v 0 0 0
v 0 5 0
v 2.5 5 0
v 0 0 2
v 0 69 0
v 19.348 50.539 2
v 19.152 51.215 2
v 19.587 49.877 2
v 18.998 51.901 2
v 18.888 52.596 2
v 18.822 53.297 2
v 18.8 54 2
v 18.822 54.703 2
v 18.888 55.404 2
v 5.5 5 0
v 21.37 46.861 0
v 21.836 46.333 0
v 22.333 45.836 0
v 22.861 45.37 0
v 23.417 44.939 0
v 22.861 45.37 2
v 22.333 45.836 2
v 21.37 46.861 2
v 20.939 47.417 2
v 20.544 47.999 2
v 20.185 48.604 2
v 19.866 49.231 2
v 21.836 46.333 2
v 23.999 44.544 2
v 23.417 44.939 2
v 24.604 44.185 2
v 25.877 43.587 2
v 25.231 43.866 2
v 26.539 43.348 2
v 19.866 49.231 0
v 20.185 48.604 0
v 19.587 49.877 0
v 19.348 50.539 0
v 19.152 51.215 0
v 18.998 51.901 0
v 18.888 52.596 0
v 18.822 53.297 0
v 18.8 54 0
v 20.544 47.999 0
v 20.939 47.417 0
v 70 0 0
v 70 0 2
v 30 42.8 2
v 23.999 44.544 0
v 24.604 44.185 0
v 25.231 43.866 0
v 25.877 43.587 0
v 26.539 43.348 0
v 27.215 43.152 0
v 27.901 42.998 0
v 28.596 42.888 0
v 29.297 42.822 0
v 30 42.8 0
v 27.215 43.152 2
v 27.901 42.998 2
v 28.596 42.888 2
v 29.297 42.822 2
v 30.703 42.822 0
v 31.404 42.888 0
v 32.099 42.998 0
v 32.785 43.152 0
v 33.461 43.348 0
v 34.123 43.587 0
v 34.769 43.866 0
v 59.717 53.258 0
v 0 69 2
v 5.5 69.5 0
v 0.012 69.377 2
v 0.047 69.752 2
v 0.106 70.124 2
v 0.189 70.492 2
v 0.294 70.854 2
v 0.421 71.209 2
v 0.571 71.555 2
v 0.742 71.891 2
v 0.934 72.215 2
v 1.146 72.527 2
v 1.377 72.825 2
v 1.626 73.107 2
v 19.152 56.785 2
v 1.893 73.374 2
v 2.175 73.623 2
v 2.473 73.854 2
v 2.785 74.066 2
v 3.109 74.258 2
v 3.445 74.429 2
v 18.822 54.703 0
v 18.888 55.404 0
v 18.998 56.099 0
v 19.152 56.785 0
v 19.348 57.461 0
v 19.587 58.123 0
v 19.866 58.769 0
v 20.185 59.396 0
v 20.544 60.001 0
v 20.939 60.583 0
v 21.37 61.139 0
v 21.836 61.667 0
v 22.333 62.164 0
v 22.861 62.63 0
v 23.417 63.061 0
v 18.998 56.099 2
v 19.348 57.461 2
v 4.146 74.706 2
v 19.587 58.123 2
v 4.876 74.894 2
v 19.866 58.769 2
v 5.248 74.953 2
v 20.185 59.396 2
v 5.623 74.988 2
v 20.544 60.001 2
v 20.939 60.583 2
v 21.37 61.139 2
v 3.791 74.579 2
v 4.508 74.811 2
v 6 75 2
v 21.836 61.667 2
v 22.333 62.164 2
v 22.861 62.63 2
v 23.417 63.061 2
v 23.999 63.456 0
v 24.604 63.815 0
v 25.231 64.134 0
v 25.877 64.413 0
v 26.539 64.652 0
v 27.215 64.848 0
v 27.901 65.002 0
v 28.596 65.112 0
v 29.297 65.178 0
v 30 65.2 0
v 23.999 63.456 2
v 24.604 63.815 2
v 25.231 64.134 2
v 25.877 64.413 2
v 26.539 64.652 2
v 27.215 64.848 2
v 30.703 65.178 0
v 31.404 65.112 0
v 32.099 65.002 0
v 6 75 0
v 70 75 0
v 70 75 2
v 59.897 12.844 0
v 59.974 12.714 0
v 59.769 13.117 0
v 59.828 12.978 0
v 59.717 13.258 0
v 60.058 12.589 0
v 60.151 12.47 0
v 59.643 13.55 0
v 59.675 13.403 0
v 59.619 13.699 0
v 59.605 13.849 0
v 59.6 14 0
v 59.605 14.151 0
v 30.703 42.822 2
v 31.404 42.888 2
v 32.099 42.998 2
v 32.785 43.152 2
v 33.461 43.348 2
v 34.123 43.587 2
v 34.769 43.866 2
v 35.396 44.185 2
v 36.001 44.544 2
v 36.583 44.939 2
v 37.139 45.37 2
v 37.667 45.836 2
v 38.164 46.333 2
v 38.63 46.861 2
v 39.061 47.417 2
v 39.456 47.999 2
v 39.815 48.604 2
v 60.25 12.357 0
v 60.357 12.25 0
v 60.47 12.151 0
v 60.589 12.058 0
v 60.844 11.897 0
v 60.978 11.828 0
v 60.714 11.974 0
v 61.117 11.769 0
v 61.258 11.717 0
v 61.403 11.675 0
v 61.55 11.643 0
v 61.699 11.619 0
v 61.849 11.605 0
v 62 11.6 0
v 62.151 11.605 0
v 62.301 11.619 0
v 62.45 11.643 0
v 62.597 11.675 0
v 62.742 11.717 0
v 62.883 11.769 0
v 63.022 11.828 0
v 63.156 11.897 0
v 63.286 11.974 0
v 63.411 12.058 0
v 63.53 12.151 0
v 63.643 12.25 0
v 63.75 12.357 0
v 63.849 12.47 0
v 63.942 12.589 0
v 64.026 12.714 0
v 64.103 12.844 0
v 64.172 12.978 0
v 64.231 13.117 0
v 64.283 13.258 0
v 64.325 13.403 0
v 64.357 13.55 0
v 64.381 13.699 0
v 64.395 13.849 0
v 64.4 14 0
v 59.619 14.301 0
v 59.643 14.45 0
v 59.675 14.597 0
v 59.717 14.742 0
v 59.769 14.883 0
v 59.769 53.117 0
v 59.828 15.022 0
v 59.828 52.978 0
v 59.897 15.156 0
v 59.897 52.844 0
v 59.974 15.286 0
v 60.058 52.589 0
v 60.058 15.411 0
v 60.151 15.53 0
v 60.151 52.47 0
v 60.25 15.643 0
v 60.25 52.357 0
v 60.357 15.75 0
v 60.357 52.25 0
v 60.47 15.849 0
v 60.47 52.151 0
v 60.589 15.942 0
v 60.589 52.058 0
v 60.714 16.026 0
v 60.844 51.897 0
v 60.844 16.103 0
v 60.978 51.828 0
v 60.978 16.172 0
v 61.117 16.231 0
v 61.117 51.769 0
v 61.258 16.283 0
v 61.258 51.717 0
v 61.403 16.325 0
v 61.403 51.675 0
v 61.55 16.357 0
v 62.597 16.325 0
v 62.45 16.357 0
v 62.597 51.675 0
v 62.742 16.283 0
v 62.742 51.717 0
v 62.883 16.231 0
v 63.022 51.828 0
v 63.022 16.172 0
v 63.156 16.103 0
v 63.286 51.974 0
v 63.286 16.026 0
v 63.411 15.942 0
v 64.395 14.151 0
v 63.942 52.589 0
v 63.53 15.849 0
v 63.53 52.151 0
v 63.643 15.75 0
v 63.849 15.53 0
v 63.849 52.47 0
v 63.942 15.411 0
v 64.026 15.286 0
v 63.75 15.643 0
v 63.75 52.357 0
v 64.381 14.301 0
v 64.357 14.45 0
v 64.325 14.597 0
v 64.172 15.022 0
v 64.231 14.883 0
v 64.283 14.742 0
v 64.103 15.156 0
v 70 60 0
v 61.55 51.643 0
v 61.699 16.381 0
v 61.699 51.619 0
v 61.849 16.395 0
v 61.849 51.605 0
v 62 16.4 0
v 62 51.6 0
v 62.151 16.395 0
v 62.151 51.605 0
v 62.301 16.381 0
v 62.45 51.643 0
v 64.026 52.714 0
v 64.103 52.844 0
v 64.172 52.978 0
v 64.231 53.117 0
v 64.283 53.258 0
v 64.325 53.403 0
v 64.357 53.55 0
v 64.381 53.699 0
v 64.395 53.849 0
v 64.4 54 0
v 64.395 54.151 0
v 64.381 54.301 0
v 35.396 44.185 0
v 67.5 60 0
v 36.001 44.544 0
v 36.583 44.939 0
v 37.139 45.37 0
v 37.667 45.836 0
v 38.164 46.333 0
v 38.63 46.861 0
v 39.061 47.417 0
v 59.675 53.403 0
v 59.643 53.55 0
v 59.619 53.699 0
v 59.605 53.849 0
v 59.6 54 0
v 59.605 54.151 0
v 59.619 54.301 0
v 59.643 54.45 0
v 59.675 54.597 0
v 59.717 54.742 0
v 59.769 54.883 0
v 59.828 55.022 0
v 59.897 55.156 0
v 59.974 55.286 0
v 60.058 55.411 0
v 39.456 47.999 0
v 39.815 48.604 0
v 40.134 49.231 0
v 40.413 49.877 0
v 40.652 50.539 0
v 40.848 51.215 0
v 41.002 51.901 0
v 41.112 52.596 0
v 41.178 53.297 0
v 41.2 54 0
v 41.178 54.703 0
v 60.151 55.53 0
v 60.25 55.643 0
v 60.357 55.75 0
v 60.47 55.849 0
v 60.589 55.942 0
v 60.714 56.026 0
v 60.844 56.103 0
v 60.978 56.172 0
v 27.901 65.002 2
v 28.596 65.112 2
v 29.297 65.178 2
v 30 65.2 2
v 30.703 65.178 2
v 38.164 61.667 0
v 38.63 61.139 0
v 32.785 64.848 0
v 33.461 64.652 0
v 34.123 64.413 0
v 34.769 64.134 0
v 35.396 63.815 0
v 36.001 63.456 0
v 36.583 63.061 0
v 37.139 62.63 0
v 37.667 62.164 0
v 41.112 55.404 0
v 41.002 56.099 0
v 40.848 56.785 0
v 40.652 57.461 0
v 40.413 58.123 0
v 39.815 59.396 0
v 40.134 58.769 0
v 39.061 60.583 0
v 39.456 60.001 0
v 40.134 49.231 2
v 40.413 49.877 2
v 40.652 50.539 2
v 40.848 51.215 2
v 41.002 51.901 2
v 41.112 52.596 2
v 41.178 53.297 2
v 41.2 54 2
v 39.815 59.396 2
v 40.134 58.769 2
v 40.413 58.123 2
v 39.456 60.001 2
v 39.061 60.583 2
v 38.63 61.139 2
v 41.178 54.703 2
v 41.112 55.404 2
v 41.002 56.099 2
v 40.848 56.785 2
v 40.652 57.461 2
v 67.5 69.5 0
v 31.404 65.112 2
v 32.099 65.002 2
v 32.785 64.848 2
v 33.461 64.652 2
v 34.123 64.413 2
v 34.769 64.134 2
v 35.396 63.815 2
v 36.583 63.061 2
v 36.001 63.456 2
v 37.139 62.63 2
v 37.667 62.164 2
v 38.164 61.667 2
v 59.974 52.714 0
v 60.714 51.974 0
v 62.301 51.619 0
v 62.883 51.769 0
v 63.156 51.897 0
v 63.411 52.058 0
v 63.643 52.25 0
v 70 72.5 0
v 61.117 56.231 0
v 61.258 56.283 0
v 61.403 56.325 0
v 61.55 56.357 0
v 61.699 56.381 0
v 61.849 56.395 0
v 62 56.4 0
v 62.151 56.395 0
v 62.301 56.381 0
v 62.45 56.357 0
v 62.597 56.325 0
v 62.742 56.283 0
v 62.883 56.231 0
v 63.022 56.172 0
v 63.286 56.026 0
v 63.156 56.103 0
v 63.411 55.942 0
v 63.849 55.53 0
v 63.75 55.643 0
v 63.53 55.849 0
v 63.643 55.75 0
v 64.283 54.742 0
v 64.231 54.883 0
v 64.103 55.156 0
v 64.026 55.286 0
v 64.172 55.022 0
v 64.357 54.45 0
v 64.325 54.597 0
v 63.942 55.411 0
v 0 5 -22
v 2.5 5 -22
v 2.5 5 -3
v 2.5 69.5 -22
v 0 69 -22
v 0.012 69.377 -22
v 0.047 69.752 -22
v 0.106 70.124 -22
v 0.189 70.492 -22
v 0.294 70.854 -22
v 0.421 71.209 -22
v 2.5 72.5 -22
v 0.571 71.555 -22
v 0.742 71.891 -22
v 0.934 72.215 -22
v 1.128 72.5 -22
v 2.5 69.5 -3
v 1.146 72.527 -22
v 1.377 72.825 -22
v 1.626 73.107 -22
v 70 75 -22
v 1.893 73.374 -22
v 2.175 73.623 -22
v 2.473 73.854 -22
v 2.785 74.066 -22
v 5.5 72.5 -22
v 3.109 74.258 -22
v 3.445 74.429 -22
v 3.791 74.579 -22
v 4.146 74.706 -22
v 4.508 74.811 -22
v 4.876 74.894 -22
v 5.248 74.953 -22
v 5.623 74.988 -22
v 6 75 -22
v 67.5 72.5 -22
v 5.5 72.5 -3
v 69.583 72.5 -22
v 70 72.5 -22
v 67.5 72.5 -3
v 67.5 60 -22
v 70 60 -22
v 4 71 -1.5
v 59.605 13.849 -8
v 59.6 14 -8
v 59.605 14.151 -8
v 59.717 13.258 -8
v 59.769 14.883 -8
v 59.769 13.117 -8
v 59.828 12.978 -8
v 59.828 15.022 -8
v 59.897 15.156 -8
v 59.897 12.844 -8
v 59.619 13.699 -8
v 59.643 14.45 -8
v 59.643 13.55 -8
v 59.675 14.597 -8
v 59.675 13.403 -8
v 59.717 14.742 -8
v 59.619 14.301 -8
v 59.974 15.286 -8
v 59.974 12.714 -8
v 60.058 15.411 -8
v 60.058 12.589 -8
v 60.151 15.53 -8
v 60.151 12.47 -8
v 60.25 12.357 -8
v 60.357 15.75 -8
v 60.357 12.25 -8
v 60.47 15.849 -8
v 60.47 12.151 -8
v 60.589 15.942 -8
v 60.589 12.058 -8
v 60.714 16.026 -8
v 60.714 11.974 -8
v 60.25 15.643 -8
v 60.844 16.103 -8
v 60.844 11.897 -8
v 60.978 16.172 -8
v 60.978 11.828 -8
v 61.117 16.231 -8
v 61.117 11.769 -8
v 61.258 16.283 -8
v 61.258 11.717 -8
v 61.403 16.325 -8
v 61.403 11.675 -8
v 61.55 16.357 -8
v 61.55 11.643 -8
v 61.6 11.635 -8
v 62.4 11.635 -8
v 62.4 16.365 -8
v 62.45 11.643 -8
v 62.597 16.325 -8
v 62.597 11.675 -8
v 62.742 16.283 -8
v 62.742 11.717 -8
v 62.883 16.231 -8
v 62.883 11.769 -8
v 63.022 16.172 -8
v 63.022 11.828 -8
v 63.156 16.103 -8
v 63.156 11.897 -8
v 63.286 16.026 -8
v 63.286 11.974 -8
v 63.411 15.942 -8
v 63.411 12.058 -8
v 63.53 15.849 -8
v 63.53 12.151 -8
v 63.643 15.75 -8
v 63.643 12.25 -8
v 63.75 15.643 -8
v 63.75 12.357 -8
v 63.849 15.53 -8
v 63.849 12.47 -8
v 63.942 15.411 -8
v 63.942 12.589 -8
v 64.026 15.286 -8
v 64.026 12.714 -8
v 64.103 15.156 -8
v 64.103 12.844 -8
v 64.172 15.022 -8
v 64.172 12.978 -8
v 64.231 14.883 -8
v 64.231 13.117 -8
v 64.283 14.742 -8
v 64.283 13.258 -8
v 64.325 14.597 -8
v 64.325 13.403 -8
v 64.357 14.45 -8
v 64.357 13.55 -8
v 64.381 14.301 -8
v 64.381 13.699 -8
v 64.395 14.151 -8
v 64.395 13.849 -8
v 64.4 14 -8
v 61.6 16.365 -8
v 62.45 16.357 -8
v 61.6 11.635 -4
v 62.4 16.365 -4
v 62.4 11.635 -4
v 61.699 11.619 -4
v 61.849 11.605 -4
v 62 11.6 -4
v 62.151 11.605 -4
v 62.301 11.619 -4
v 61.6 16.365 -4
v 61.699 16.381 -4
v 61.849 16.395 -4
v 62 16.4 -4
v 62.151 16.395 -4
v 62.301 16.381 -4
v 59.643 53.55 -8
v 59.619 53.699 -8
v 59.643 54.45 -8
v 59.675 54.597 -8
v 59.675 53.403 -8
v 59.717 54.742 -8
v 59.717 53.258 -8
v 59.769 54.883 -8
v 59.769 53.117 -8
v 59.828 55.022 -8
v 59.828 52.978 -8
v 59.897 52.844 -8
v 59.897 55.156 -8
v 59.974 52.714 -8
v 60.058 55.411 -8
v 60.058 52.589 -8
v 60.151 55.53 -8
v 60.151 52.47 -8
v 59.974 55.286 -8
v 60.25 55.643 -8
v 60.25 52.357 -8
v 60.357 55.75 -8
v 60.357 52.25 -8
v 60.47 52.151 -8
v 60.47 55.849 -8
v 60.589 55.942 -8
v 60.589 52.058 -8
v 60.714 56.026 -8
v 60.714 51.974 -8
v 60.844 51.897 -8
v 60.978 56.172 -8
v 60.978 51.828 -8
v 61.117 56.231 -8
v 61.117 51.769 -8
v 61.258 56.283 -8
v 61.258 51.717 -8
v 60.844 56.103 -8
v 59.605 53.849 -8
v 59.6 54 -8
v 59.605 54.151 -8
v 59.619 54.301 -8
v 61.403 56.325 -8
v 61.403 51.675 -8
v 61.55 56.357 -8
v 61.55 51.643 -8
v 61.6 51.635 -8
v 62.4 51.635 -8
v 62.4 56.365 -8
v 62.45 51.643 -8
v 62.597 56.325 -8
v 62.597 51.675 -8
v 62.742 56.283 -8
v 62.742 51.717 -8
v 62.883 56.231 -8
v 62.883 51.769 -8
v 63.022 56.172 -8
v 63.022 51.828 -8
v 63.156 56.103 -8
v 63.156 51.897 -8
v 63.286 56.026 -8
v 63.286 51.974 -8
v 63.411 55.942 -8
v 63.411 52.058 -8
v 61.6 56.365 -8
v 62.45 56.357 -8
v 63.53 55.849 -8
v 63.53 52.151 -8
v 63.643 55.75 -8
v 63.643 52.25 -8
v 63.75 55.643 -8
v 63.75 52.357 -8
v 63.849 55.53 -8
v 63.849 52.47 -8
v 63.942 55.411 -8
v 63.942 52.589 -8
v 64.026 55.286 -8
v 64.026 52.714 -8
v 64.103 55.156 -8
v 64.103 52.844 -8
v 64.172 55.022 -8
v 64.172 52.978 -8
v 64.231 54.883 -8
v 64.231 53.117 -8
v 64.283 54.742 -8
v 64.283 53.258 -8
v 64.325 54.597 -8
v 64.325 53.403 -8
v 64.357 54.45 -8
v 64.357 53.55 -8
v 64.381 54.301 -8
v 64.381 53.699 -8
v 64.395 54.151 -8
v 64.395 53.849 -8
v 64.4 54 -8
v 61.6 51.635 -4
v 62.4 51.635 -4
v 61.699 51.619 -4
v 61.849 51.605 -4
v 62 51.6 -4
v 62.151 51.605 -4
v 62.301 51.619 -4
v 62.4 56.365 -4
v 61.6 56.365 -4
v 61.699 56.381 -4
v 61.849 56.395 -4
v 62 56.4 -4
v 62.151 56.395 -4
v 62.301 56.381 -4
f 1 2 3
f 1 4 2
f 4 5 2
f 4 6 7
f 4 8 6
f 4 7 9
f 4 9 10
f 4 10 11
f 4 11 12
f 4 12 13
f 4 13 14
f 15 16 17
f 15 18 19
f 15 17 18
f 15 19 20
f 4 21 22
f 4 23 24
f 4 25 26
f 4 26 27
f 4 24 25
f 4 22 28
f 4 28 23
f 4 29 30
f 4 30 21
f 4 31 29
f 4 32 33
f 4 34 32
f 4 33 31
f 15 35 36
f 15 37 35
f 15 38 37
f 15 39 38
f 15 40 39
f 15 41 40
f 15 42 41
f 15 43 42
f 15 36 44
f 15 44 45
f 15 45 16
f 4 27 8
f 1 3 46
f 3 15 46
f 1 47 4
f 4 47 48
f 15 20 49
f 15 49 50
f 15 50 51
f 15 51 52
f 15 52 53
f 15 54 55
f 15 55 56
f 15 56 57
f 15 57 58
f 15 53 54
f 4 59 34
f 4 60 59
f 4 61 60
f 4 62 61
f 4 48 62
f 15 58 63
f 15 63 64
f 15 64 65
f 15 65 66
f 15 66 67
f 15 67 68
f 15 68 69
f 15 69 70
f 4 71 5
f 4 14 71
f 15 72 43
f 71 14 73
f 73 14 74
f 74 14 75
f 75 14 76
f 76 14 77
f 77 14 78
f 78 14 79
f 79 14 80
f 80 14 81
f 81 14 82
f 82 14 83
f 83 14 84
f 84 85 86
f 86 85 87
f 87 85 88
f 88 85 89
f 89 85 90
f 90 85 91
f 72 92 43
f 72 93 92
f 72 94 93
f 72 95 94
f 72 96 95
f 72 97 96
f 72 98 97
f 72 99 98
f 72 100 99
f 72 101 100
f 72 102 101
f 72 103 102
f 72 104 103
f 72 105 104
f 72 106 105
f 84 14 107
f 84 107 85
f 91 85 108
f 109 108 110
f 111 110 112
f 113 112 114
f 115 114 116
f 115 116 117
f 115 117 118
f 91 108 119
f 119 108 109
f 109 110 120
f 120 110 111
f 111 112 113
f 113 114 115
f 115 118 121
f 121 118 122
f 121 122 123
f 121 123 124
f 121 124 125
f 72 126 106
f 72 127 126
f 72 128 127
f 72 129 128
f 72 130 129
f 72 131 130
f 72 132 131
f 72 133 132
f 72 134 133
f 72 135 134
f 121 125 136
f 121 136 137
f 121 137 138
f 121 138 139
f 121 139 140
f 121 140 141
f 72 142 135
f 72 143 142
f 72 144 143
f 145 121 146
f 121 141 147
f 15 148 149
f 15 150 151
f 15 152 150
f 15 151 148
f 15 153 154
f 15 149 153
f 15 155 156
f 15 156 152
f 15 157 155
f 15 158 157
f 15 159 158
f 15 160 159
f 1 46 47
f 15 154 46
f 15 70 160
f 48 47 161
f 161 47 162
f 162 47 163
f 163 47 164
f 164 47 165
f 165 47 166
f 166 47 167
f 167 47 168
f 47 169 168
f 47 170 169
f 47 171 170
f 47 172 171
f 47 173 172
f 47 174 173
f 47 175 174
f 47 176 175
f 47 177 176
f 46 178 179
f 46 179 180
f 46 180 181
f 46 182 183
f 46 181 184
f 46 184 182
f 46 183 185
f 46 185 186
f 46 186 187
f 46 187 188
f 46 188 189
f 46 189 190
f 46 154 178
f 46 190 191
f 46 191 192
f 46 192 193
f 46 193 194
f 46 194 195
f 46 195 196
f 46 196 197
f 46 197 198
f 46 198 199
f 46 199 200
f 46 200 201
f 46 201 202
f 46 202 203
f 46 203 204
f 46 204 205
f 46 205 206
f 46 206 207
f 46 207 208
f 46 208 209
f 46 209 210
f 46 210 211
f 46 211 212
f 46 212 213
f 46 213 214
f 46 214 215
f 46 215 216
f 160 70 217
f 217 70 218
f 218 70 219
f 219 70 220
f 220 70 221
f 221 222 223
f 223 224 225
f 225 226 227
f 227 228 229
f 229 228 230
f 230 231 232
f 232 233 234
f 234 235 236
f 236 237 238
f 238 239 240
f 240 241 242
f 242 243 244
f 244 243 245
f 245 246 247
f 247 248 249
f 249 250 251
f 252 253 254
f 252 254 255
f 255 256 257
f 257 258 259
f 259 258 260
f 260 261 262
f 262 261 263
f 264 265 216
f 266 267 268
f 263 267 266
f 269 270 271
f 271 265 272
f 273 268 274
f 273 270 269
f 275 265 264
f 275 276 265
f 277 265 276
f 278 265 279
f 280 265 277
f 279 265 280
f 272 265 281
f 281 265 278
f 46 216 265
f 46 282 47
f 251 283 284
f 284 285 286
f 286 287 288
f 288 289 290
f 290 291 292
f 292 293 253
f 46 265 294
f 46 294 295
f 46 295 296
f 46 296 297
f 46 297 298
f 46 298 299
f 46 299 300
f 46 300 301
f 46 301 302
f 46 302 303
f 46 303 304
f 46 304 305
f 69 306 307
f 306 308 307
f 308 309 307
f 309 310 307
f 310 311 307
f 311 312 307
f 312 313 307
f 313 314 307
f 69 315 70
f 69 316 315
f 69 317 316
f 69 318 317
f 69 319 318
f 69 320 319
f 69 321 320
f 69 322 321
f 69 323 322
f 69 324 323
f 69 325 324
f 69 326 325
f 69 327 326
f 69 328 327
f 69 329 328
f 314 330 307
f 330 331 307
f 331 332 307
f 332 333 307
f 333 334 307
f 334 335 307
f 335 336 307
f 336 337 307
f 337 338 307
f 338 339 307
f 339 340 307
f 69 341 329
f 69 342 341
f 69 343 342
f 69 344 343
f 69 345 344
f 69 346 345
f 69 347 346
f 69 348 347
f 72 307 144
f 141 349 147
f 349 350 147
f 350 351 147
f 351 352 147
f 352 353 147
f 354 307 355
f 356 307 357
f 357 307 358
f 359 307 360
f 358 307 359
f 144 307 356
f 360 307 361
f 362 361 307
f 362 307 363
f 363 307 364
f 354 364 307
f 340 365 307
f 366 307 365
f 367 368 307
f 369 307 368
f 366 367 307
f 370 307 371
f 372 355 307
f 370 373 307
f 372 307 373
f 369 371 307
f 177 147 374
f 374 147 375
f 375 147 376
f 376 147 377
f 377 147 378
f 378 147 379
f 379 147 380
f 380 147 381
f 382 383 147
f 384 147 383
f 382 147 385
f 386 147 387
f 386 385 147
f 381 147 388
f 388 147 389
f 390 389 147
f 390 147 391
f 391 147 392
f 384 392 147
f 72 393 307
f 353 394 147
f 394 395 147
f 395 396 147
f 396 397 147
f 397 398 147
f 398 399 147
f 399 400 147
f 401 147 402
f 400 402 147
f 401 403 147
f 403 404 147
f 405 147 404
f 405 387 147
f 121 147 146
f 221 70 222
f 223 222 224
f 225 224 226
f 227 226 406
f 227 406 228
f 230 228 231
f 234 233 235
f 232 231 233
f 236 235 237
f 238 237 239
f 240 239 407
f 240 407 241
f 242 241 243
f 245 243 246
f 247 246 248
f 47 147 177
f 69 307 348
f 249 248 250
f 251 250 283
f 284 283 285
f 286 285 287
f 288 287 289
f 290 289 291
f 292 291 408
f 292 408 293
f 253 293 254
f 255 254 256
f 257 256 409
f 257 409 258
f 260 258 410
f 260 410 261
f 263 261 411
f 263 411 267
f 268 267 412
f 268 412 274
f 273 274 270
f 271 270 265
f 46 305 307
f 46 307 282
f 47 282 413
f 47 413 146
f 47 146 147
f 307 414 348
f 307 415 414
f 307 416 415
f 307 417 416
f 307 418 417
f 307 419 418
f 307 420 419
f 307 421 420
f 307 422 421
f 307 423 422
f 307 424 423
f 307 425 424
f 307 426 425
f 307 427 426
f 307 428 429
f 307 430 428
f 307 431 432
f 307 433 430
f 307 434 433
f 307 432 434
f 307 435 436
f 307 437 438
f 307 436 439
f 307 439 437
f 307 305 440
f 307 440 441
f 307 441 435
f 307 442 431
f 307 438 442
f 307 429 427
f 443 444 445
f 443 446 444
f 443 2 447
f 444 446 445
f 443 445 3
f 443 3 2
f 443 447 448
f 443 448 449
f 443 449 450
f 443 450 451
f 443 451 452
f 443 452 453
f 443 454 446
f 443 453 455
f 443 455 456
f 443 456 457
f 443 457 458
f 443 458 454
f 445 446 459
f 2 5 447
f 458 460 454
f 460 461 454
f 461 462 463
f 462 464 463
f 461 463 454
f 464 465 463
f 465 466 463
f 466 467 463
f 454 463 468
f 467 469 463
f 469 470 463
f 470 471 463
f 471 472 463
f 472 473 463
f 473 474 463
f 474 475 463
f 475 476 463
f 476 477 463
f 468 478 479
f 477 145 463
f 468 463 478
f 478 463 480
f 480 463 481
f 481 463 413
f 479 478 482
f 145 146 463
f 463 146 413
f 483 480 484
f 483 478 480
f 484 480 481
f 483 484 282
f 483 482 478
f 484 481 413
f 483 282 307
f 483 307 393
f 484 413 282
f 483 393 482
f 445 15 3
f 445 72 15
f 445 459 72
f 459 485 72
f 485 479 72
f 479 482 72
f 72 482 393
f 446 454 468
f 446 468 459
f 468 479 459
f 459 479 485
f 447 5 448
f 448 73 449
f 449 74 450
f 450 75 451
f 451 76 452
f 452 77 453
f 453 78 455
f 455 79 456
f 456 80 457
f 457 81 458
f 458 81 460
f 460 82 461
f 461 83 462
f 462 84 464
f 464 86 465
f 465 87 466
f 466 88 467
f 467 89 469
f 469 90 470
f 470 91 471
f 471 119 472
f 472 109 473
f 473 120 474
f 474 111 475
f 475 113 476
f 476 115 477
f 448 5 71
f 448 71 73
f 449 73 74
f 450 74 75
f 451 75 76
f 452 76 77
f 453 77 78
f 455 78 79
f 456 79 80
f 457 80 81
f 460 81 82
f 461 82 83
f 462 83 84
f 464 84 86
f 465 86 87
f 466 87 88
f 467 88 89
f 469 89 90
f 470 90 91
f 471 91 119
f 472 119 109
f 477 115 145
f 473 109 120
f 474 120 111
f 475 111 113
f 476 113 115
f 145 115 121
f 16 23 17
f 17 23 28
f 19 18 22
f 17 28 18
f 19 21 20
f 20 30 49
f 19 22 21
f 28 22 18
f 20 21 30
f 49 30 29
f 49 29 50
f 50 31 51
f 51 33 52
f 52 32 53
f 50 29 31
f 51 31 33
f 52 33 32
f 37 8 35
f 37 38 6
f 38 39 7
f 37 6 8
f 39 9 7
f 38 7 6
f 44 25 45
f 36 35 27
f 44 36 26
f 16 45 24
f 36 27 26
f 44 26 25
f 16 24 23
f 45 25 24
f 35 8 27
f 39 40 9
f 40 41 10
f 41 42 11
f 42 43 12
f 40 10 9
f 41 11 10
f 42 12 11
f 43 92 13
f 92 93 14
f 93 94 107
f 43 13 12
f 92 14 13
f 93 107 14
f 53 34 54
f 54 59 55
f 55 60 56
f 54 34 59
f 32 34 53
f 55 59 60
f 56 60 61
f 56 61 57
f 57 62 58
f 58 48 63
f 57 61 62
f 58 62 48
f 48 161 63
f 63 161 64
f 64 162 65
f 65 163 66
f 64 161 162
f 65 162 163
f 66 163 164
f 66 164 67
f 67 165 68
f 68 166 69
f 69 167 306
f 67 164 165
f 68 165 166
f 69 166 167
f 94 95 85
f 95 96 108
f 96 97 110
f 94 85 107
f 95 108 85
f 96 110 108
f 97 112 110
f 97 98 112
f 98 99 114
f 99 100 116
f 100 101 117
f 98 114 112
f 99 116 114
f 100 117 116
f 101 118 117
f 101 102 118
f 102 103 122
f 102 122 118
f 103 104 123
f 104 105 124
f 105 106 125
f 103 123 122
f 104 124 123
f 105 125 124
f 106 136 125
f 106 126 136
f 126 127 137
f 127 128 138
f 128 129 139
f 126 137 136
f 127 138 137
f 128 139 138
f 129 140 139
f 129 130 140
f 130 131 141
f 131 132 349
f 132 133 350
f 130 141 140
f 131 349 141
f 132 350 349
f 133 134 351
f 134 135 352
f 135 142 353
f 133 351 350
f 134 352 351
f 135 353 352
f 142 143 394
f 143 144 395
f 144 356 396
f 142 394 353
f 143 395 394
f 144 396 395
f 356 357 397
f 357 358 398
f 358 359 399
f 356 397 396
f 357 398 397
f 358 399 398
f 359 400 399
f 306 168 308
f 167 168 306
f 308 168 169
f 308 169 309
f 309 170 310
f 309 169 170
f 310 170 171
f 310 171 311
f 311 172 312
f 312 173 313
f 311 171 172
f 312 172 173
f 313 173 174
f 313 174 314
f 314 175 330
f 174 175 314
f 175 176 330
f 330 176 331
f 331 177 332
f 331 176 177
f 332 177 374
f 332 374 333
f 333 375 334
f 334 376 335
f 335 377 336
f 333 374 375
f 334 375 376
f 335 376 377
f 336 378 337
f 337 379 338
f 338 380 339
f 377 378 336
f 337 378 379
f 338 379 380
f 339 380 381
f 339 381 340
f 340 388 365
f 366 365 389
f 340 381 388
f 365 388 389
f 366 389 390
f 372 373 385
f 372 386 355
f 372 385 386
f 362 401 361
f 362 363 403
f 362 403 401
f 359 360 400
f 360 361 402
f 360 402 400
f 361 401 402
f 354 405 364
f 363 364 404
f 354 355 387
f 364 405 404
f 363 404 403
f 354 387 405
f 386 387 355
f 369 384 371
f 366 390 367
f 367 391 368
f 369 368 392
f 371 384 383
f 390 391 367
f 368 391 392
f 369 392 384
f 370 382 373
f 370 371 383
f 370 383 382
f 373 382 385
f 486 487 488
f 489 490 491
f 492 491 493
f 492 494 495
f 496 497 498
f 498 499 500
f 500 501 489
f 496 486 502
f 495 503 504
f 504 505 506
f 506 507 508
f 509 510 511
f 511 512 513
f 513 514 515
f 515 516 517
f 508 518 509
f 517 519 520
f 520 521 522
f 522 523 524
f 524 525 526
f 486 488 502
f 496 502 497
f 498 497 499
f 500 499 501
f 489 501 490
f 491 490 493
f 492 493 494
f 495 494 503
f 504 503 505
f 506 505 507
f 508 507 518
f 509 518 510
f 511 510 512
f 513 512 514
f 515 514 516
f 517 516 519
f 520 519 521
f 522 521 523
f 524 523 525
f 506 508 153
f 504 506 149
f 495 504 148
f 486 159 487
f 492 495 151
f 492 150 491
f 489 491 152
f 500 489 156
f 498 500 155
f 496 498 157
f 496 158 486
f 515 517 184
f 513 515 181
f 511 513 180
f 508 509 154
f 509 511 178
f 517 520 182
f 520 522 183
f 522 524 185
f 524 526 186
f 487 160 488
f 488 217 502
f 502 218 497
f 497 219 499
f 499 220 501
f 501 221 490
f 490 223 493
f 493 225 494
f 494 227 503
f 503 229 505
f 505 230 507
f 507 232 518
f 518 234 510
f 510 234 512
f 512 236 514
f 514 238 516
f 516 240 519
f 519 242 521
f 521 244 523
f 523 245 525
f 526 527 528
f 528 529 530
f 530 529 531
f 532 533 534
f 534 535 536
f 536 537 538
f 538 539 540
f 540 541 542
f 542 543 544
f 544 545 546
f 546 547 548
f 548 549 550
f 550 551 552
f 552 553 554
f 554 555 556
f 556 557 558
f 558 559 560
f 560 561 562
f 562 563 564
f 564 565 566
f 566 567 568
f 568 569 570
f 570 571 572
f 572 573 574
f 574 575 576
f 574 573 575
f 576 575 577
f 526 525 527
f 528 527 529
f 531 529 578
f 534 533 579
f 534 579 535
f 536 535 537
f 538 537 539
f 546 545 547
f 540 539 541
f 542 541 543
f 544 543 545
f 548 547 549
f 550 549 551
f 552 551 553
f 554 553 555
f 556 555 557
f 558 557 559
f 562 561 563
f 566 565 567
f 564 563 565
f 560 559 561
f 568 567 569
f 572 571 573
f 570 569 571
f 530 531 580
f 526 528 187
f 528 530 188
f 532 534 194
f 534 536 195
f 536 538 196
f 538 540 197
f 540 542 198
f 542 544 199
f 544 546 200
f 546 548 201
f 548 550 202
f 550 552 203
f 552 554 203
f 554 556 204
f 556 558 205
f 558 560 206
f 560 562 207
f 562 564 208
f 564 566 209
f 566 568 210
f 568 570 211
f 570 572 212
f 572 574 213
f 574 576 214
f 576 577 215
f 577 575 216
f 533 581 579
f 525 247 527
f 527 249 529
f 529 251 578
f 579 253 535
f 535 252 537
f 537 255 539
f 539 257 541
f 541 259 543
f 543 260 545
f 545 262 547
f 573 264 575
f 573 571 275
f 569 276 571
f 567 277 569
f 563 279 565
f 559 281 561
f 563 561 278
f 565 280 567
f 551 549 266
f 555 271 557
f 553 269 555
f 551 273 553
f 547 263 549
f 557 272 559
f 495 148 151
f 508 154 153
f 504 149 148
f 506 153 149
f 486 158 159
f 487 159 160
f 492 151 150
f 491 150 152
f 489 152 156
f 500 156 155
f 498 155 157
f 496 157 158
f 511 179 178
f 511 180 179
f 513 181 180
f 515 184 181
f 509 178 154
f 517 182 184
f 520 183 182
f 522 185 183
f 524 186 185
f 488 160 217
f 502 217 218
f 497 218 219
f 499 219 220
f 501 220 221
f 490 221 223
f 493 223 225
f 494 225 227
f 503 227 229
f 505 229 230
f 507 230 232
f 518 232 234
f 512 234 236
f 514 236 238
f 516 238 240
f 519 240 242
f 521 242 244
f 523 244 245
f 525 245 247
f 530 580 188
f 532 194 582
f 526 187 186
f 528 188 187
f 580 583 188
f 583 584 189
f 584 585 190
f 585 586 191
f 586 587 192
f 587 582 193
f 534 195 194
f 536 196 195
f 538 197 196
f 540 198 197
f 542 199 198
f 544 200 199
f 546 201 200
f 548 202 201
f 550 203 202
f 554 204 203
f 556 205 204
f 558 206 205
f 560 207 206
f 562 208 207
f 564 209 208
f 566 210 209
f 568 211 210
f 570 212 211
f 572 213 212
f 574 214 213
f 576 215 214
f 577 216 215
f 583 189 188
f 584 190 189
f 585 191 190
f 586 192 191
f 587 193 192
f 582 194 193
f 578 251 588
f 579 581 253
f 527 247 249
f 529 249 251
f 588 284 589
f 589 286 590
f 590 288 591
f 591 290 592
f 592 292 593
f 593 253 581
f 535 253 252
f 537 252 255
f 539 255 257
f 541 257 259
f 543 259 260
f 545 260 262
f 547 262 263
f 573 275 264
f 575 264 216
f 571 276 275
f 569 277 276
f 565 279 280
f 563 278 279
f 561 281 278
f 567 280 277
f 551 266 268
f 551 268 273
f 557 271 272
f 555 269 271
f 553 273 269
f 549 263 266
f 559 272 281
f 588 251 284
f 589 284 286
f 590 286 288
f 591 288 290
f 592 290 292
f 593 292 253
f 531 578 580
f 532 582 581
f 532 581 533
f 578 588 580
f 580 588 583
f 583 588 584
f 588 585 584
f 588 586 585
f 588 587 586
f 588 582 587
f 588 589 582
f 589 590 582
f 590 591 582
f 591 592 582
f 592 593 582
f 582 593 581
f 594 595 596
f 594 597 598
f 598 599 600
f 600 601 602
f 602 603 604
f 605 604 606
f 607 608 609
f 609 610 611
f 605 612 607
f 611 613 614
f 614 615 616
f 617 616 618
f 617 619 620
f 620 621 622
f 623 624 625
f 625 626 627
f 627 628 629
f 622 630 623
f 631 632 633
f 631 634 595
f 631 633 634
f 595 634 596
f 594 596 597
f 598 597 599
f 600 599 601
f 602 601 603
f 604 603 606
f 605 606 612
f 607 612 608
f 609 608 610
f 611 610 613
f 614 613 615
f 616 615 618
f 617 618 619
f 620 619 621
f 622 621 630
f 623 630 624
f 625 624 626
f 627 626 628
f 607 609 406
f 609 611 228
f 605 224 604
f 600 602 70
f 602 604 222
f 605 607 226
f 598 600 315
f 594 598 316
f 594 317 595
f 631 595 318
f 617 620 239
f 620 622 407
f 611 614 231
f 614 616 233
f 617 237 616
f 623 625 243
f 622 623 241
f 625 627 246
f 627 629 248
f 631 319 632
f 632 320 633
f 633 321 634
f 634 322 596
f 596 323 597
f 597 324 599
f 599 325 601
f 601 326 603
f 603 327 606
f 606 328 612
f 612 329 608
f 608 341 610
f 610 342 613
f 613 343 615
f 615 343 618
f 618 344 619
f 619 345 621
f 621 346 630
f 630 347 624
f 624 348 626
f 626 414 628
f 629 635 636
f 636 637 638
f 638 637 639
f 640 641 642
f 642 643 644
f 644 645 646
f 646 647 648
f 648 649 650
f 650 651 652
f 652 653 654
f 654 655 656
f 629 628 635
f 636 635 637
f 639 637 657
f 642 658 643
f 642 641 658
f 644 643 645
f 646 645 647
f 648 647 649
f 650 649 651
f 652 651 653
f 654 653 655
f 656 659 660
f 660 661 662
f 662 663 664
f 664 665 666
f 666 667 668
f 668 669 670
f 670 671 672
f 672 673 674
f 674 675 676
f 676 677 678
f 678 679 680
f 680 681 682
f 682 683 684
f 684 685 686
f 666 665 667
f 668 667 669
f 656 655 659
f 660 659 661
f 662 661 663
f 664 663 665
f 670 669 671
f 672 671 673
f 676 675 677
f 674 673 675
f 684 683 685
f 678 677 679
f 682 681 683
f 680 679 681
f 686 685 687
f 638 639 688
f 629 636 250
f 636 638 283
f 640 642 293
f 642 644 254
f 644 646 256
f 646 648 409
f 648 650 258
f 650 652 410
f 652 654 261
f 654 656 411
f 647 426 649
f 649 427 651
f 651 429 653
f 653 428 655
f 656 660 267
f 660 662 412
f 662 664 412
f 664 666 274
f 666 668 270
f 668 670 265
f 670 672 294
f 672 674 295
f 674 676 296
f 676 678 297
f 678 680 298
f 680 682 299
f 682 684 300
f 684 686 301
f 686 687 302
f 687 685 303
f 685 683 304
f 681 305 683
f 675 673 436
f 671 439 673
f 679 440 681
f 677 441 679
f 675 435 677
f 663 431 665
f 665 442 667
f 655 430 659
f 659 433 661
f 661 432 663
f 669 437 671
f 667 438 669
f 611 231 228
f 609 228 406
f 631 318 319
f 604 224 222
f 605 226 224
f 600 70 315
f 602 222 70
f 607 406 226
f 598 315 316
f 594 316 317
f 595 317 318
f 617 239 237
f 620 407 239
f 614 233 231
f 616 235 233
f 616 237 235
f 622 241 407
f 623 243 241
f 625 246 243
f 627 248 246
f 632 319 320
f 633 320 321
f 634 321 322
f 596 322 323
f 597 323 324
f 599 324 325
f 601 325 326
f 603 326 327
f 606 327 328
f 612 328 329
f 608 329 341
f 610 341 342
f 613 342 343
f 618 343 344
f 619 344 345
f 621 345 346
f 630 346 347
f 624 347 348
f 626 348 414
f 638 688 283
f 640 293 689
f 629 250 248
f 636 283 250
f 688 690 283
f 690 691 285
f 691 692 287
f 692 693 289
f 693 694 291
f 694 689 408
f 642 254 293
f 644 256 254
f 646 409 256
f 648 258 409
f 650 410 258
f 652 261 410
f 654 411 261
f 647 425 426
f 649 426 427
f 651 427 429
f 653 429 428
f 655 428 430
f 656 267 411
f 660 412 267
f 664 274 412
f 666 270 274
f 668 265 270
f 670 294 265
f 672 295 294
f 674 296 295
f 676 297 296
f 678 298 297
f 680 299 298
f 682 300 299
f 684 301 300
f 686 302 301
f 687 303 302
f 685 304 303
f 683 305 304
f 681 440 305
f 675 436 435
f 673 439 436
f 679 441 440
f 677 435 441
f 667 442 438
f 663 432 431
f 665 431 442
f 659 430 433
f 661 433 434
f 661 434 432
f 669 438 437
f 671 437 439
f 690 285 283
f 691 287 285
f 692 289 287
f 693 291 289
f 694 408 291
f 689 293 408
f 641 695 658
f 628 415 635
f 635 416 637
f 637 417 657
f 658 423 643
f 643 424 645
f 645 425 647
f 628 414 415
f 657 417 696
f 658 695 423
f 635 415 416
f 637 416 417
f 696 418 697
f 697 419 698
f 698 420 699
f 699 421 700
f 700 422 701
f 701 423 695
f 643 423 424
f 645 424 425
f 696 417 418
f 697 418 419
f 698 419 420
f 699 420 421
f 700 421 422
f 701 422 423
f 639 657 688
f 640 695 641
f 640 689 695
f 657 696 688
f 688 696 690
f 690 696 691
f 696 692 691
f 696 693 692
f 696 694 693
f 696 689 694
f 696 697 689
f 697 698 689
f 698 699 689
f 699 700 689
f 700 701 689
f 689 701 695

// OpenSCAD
// =================================================================
// SIMPLIFIED LOW-PROFILE 94R/H7 BATTERY POLE ADAPTER DECK
// 70mm x 75mm platform with open sides and oversized post clearance
// =================================================================
$fn = 100;

// --- 1. CORE PARAMETERS & CLEARANCES ---
clearance       = 0.4;   // Clearance buffer for standard printer filament expansion
wall_thickness  = 2.5;   // Solid thickness for robust engine bay durability (ABS/ASA)
pin_dia         = 4.8;   // Target diameter for a snug friction fit inside 5.0mm holes
pin_height      = 8.0;  // Approximate pin length, based on the reference image
pin_slit_width  = 0.8;   // Width of each tension slit
pin_slit_length = pin_height / 2; // Slit runs upward from the free end
wall_gusset     = 3.0;   // Interior triangular brace size at wall/plate joints
round_corner_gusset_size = 3.0; // Plan size of brace at rounded -X/+Y corner
round_corner_gusset_drop = 22.0;  // Vertical depth of that brace below the plate

// --- 2. DECK FACE FOOTPRINT (70mm x 75mm) ---
deck_width      = 70.0;  // Total X-axis width including casing overlap
deck_length     = 75.0;  // Total Y-axis length including casing overlap
plate_thickness = 2.0;   // Height of the flat top deck plate face
wall_drop       = 22.0;  // Drop from battery-facing plate underside to wall bottoms
short_wall_length = 15.0; // Maximum return length on the +X edge
minus_x_wall_start_y = 5.0; // Leave the -Y plate overlap without a dropped wall
corner_radius   = 6.0;   // Rounded trim radius at the -X / +Y corner
perimeter_chamfer = 1.0; // Plan-view bevel along the -X and +Y outside edges

// --- 3. HARDWARE PASS-THROUGH LOCATION ---
// Oversized to 21mm to build in horizontal wiggle-room around the pole base
post_center_x   = 30.0;  
post_center_y   = 54.0;  
pass_through_dia= 22.0;  // Intentionally wider than SAE base spec for placement flexibility

// --- 4. ANCHOR PIN PLACEMENT (+X / near edge) ---
pin_edge_inset  = 8.0;   // Pin centers are inset from the +X edge
pin_y_start     = 14.0;  // First pin center measured from the -Y edge
pin_y_spacing   = 40.0;  // Separation between pins along Y

// =================================================================
// MAIN ASSEMBLY GENERATION
// =================================================================

union() {
    // --- PART A: THE TOP DECK PLATFORM & WALL MODULE ---
    difference() {
        // I. Additive Solid Structure (Deck Plate + Specified Downward Walls)
        union() {
            // The main flat top plate face
            cube([deck_width, deck_length, plate_thickness]);
            
            // Downward Wall along the -X axis boundary
            translate([0, minus_x_wall_start_y, -wall_drop])
                cube([wall_thickness,
                      deck_length - minus_x_wall_start_y,
                      wall_drop]);
                
            // Downward Wall along the +Y axis boundary
            translate([0, deck_length - wall_thickness, -wall_drop])
                cube([deck_width, wall_thickness, wall_drop]);
                
            // Optional narrow stabilizing wall section along the +X axis
            // Shunted toward the +Y edge to anchor the corner structure cleanly
            translate([deck_width - wall_thickness,
                       deck_length - short_wall_length,
                       -wall_drop])
                cube([wall_thickness, short_wall_length, wall_drop]);

            // Interior triangular gussets reinforce the long wall-to-plate
            // joints, while remaining inside the existing outer footprint.
            gusset_along_y(wall_thickness,
                           minus_x_wall_start_y,
                           deck_length - minus_x_wall_start_y,
                           wall_gusset);
            gusset_along_x(0, deck_length - wall_thickness,
                           deck_width, wall_gusset);

            // Broad diagonal brace beneath the plate at the rounded -X/+Y
            // corner. It ties the two walls together and backs the curved wall.
            rounded_corner_gusset(round_corner_gusset_size,
                                  round_corner_gusset_drop);
        }

        // II. Subtractive Precision Cuts
        union() {
            // Oversized center pass-through hole for the mil-spec post connection
            translate([post_center_x, post_center_y, -wall_drop - 1])
                cylinder(h = total_height() + 2, d = pass_through_dia + clearance);
                
            // Round the -X / +Y corner: remove the square outside the quarter
            // circle centered one radius in from each edge.
            translate([-1, deck_length - corner_radius, -wall_drop - 1])
                difference() {
                    cube([corner_radius + 1, corner_radius + 1,
                          total_height() + 2]);
                    translate([corner_radius + 1, 0, -0.1])
                        cylinder(h = total_height() + 2.2, r = corner_radius);
                }

            // Small 45-degree plan-view bevels run the full length of the
            // outside -X and +Y edges, including the dropped walls.
            linear_extrude(height = total_height() + 2)
                polygon(points=[[-1, -1],
                                [perimeter_chamfer, -1],
                                [-1, perimeter_chamfer]]);

            linear_extrude(height = total_height() + 2)
                translate([0, deck_length, 0])
                    polygon(points=[[-1, 1],
                                    [perimeter_chamfer, 1],
                                    [-1, -perimeter_chamfer]]);
        }
    }

    // --- PART B: THE INTEGRATED DOWNWARD ANCHORING PINS ---
    // Slotted pins along the +X edge. Each slit opens from the free tip
    // halfway up the pin, allowing the two sides to flex for a tension fit.
    slotted_pin(deck_width - pin_edge_inset, pin_y_start);
    slotted_pin(deck_width - pin_edge_inset, pin_y_start + pin_y_spacing);
}

// --- Dynamic Height Calculation Helper ---
function total_height() = plate_thickness + wall_drop;

module slotted_pin(x, y) {
    difference() {
        translate([x, y, -pin_height])
            cylinder(h = pin_height, d = pin_dia);
        translate([x - pin_slit_width/2,
                   y - pin_dia/2 - 0.5,
                   -pin_height - 0.01])
            cube([pin_slit_width, pin_dia + 1,
                  pin_slit_length + 0.01]);
    }
}

// Triangular brace against a wall running along Y; x is its inner face.
module gusset_along_y(x, y_start, length, size) {
    translate([x, y_start + length, 0])
        rotate([90, 0, 0])
            linear_extrude(height = length)
                polygon(points=[[0, 0], [size, 0], [0, -size]]);
}

// Triangular brace against a wall running along X; y is its inner face.
module gusset_along_x(x_start, y, length, size) {
    translate([x_start, 0, 0])
        rotate([0, 90, 0])
            linear_extrude(height = length)
                polygon(points=[[0, y], [0, y - size], [size, y]]);
}

// Triangular-prism rib in plan, extruded down from the plate to reinforce
// the rounded corner wall and join the inner faces of the -X and +Y walls.
module rounded_corner_gusset(size, drop) {
    x_inner = wall_thickness;
    y_inner = deck_length - wall_thickness;
    translate([0, 0, -drop])
        linear_extrude(height = drop)
            polygon(points=[
                [x_inner,        y_inner - size],
                [x_inner + size, y_inner],
                [x_inner,        y_inner]
            ]);
}
